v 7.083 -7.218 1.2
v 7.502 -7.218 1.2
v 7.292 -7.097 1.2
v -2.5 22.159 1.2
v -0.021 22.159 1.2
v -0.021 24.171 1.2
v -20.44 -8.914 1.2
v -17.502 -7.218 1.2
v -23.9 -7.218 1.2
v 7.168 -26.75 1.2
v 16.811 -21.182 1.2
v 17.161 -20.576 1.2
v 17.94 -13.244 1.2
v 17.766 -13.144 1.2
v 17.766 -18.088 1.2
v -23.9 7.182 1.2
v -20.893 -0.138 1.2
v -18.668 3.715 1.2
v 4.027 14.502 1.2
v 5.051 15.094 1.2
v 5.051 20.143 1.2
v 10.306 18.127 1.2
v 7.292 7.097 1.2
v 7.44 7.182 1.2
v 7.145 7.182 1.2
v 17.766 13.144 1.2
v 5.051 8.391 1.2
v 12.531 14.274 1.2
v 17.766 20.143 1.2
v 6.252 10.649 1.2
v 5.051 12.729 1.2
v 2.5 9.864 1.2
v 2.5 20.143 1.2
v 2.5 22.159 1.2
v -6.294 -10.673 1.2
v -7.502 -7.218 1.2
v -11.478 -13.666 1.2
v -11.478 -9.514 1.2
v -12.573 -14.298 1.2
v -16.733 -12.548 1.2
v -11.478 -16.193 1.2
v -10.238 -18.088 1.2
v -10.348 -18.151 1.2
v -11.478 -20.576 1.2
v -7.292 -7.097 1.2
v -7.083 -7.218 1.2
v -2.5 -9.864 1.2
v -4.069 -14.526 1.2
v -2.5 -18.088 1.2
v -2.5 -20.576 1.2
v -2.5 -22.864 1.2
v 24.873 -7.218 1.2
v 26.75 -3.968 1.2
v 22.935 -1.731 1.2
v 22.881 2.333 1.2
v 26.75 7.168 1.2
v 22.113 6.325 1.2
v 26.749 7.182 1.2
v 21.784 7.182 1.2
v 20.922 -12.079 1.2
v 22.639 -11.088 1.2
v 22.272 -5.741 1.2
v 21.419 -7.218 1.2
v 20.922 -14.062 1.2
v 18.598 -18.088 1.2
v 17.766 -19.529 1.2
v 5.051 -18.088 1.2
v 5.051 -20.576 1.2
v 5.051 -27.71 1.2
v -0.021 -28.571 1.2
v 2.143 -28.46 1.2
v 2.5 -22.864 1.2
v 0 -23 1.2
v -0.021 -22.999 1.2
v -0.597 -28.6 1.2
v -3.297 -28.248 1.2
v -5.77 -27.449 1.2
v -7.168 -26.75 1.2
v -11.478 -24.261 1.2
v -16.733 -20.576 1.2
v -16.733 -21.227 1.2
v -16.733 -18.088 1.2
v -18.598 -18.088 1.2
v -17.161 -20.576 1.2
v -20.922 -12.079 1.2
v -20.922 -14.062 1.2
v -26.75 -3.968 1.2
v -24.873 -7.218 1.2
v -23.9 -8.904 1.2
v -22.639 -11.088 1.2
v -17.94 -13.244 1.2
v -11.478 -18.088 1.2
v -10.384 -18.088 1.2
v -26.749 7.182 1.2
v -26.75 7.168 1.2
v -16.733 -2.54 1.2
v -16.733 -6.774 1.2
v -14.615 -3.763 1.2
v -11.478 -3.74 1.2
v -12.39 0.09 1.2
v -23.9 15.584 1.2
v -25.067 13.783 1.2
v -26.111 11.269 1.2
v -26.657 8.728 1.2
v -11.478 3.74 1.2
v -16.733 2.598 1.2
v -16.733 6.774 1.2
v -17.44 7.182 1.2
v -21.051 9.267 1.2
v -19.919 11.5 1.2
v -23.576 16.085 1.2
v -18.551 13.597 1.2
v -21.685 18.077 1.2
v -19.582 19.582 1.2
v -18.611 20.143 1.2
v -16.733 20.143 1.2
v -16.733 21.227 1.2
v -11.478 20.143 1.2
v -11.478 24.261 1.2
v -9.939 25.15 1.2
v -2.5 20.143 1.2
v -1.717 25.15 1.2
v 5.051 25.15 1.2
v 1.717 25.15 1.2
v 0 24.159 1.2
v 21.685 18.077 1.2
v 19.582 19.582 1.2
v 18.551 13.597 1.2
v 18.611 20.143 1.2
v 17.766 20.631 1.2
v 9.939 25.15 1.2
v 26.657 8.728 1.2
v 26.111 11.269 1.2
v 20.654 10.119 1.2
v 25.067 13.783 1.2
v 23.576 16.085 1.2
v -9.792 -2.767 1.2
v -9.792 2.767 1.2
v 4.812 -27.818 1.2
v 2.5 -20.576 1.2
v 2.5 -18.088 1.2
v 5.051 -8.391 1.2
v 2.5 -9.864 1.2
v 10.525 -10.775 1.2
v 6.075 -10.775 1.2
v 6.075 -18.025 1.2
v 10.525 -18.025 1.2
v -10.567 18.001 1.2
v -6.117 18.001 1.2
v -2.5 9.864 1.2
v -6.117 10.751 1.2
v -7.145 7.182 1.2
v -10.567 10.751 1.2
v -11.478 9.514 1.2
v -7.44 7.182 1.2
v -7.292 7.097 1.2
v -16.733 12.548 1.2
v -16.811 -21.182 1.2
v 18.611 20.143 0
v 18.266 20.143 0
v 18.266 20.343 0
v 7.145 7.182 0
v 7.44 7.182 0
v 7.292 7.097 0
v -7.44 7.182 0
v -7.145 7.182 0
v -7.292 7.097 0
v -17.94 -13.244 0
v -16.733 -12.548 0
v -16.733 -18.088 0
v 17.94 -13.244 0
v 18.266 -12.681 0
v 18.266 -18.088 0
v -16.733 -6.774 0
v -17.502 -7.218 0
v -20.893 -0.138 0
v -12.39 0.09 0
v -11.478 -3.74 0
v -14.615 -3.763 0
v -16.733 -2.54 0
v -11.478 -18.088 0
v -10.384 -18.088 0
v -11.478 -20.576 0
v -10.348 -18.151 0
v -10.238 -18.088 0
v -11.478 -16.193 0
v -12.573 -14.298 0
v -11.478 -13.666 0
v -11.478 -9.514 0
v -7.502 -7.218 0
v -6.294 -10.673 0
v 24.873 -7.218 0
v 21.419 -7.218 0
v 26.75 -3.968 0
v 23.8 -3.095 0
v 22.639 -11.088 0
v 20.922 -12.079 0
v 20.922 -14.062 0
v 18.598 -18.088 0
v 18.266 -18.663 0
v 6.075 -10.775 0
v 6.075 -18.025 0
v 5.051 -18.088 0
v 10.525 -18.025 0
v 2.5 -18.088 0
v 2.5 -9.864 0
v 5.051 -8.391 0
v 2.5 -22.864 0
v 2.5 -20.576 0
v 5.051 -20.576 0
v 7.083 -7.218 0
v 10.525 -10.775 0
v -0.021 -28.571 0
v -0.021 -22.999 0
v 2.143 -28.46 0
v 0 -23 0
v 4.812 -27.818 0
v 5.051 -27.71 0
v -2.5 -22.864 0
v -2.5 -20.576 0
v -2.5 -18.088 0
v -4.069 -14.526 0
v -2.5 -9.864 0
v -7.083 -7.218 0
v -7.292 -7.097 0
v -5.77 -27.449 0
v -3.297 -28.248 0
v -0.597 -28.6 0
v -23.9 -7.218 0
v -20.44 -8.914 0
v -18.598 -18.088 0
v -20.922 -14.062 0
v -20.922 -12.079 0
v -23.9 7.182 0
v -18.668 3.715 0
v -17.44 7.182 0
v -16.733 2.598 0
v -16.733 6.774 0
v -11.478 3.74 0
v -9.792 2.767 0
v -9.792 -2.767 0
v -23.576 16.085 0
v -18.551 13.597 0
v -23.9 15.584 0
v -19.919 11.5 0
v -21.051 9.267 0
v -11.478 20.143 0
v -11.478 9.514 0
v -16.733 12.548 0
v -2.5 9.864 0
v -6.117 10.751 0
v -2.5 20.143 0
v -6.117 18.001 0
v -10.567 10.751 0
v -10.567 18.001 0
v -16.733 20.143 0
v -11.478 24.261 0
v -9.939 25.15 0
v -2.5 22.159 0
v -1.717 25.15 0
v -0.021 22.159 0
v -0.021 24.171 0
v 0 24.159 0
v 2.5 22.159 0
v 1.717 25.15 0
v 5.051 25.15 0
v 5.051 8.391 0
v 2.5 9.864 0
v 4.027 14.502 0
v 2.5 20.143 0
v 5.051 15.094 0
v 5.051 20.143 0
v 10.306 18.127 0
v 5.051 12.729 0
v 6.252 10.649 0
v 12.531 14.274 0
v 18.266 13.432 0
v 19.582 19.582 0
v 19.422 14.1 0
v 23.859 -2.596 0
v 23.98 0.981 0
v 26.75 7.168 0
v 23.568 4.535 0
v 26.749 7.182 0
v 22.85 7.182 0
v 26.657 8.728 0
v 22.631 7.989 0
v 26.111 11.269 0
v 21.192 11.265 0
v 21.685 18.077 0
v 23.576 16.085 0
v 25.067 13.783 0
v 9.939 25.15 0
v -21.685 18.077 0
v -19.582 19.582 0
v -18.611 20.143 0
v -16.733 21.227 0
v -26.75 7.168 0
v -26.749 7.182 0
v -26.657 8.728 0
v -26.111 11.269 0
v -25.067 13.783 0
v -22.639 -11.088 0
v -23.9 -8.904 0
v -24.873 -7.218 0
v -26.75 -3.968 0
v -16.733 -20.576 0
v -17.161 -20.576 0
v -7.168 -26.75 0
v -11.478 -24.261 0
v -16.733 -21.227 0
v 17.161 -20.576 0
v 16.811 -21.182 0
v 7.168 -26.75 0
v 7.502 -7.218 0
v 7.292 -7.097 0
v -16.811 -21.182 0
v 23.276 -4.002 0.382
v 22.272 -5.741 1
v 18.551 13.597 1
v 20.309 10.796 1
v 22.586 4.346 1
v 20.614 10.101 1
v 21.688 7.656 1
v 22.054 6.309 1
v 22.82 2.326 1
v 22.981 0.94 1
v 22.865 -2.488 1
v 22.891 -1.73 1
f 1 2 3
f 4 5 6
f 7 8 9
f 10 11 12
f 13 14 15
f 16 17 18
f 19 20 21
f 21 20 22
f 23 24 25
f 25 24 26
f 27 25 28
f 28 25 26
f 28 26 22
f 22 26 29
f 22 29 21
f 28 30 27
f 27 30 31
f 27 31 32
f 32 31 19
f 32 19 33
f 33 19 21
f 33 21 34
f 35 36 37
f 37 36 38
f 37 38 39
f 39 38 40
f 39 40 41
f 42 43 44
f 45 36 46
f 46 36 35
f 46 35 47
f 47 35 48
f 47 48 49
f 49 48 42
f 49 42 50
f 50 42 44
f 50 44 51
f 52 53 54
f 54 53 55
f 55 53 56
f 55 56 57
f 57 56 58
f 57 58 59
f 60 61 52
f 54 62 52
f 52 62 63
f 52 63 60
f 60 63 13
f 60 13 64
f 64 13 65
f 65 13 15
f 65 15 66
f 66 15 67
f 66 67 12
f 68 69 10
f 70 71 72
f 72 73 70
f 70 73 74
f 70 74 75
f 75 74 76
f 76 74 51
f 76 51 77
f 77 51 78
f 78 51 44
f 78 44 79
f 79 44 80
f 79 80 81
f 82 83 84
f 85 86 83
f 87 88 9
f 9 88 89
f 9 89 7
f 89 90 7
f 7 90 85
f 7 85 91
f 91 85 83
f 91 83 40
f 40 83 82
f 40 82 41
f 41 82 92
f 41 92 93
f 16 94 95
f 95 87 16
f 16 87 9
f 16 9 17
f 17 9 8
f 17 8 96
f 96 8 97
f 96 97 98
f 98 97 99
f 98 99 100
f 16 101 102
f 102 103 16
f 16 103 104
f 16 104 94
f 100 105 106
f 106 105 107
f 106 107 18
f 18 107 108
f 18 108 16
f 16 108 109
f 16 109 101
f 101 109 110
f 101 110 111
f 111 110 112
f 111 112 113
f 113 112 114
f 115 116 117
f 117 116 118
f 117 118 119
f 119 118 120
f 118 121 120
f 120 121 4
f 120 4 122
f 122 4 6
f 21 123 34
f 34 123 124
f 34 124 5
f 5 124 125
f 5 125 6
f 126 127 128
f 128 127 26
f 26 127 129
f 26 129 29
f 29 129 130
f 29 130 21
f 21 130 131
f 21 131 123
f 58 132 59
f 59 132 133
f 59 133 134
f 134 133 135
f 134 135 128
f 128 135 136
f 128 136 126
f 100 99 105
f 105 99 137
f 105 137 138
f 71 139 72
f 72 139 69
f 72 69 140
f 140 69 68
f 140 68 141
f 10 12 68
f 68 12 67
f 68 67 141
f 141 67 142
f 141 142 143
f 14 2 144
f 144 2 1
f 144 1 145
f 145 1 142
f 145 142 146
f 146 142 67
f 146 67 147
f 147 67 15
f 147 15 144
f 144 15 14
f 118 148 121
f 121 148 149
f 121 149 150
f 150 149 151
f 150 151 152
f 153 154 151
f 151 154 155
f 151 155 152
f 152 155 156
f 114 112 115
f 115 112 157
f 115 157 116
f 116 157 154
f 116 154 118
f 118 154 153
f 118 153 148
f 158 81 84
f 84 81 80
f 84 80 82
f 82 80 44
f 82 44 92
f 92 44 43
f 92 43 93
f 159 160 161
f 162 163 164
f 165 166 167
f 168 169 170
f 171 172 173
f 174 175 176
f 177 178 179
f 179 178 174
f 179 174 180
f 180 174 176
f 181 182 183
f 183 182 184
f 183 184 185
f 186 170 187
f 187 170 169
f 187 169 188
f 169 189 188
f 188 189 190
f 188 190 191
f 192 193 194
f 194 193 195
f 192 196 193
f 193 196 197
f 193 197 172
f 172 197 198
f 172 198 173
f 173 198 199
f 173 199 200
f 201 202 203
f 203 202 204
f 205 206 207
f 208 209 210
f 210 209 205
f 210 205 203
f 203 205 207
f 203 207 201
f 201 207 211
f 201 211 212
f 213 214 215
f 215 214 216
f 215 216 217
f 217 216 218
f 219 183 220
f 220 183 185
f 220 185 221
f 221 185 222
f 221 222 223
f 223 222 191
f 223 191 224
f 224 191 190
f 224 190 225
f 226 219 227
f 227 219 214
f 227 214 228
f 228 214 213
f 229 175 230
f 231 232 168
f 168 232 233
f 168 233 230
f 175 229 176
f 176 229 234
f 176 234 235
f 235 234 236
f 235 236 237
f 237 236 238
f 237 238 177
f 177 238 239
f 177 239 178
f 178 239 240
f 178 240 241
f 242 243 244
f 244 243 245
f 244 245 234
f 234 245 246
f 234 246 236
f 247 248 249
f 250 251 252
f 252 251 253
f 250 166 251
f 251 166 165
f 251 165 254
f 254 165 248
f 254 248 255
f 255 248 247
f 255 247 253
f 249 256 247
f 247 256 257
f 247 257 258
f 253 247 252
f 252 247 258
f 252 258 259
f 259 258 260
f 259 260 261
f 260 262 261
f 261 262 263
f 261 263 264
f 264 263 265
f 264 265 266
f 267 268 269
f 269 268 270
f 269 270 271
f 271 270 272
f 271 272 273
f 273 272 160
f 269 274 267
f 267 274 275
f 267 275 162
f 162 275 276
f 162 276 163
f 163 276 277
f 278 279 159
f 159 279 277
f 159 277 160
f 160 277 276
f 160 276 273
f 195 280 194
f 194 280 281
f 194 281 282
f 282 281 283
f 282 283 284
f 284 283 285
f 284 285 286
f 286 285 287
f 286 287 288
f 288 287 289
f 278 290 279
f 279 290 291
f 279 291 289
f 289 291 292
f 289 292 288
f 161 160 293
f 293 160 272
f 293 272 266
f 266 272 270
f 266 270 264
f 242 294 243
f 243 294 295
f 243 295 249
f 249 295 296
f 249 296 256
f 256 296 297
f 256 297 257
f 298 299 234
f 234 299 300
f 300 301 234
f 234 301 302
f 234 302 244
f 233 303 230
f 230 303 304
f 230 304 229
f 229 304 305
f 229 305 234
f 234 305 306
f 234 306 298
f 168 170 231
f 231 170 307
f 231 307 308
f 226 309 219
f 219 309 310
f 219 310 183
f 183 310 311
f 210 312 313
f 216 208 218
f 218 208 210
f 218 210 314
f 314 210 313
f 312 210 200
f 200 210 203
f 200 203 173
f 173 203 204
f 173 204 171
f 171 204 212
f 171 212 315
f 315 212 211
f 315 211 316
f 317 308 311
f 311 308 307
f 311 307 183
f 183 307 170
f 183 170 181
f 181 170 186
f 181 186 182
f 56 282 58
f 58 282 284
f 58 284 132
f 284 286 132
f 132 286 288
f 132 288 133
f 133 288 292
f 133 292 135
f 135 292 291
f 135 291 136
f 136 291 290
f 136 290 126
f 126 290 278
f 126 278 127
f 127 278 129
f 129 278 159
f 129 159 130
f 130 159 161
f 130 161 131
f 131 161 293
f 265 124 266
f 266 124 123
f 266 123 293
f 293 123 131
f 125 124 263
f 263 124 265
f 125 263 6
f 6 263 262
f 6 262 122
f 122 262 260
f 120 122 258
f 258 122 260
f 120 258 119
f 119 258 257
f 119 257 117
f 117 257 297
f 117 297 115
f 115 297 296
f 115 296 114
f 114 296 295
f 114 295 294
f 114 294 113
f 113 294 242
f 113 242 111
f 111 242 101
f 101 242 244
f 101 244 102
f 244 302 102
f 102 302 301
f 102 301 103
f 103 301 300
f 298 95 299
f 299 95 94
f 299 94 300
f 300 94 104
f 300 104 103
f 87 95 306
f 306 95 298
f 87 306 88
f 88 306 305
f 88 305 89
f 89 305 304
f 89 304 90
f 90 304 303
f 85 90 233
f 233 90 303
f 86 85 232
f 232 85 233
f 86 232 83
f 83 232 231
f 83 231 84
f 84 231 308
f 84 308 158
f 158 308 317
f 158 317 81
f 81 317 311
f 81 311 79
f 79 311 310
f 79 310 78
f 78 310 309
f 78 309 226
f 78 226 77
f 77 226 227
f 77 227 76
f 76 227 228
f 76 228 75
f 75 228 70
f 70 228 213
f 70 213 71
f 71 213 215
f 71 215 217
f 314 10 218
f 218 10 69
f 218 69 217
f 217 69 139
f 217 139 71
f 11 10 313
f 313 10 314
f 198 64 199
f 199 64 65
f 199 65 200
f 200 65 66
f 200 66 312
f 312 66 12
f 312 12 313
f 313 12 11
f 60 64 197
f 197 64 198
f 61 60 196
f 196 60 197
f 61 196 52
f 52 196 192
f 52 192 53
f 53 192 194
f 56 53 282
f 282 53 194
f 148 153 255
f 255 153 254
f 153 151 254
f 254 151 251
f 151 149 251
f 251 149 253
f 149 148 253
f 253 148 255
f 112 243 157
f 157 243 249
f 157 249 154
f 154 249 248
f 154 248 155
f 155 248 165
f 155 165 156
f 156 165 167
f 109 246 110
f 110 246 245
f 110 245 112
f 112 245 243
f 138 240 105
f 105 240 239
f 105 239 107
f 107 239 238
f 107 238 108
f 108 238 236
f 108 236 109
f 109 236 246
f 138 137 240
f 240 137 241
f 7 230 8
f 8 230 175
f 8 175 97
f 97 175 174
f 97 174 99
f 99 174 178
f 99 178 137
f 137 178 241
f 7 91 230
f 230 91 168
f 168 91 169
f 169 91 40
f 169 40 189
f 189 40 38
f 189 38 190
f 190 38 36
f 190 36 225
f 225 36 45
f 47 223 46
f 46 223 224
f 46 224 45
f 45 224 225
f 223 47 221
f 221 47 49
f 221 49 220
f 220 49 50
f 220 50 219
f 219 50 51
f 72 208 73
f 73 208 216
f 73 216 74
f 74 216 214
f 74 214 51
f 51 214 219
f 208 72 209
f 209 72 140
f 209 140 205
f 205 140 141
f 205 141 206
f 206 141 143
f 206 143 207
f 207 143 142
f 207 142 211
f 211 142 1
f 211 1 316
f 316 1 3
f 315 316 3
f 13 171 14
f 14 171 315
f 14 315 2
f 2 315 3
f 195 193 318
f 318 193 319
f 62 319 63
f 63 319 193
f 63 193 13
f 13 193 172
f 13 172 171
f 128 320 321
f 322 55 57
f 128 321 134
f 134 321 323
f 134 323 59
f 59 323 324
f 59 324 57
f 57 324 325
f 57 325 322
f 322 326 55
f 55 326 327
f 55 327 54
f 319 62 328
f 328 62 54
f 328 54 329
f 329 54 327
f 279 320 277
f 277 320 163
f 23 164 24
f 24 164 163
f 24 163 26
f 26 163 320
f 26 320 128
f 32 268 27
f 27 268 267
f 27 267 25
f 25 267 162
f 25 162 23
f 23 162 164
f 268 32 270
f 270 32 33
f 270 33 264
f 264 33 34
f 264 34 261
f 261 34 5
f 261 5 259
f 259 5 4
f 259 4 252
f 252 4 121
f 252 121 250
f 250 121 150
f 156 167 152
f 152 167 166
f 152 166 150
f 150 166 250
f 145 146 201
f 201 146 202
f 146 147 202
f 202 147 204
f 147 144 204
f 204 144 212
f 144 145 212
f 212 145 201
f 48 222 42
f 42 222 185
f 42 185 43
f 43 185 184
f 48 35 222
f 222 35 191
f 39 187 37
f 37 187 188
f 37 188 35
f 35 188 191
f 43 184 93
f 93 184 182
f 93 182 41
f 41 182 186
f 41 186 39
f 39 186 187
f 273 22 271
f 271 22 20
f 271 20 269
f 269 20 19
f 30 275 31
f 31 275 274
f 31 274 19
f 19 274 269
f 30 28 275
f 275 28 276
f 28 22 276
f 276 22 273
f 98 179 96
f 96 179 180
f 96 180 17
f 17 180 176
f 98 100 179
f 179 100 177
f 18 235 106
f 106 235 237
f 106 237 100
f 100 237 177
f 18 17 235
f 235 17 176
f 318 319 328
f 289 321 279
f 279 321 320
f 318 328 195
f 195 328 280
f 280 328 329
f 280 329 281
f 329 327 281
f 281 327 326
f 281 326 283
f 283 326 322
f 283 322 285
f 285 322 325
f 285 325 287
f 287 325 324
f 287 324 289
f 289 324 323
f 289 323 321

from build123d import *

# Parameters (mm, degrees)
BASE_DEPTH               = 1.2
PCB_SKETCH_W             = 4.450002
PCB_SKETCH_H             = 7.250001
PCB_COMPONENT_ROOM_DEPTH = 40.187510032
REMOVAL_ROOM_SIZE        = 1


with BuildPart() as part:
    # Base sketch → Base (new body)
    with BuildSketch(Plane.XY):
        with BuildLine():
            Line((22.639032554, -11.088045382), (26.75, -3.967640898))
            Line((26.75, -3.967640898), (26.75, 7.167640898))
            add(Edge.make_bspline(
                [(19.582359102, 19.582359102), (26.75, 15.444119701), (26.75, 7.167640898)],
                knots=[0, 0, 0, 1, 1, 1], degree=2, weights=[1, 0.818181818, 1]))
            Line((19.582359102, 19.582359102), (9.93892219, 25.15))
            Line((9.93892219, 25.15), (1.716987298, 25.15))
            Line((1.716987298, 25.15), (0, 24.158696921))
            Line((0, 24.158696921), (-1.716987298, 25.15))
            Line((-1.716987298, 25.15), (-9.93892219, 25.15))
            Line((-9.93892219, 25.15), (-19.582359102, 19.582359102))
            add(Edge.make_bspline(
                [(-19.582359102, 19.582359102), (-26.75, 15.444119701), (-26.75, 7.167640898)],
                knots=[0, 0, 0, 1, 1, 1], degree=2, weights=[1, 0.818181818, 1]))
            Line((-26.75, 7.167640898), (-26.75, -3.967640898))
            Line((-26.75, -3.967640898), (-22.639032554, -11.088045382))
            Line((-22.639032554, -11.088045382), (-20.922045256, -12.079348461))
            Line((-20.922045256, -12.079348461), (-20.922045256, -14.061954618))
            Line((-20.922045256, -14.061954618), (-16.81107781, -21.182359102))
            Line((-16.81107781, -21.182359102), (-7.167640898, -26.75))
            add(Edge.make_bspline(
                [(7.167640898, -26.75), (0, -30.888239402), (-7.167640898, -26.75)],
                knots=[0, 0, 0, 1, 1, 1], degree=2, weights=[1, 0.818181818, 1]))
            Line((7.167640898, -26.75), (16.81107781, -21.182359102))
            Line((16.81107781, -21.182359102), (20.922045256, -14.061954618))
            Line((20.922045256, -14.061954618), (20.922045256, -12.079348461))
            Line((20.922045256, -12.079348461), (22.639032554, -11.088045382))
        make_face()
    extrude(amount=BASE_DEPTH)

    # PCB sketch → PCB Component room (cut, through all)
    with BuildSketch(Plane.XY):
        with BuildLine():
            Line((7.292235248, -7.096920387), (17.939993848, -13.244411362))
            Line((17.939993848, -13.244411362), (22.271882405, -5.741366))
            ThreePointArc((22.271882405, -5.741366), (22.585630976, 4.346215175), (18.550568269, 13.596944935))
            Line((18.550568269, 13.596944935), (7.292237734, 7.096945429))
            Line((7.292237734, 7.096945429), (2.500009052, 9.863735785))
            Line((2.500009052, 9.863735785), (2.500009052, 22.158696921))
            Line((2.500009052, 22.158696921), (-2.499990948, 22.158696921))
            Line((-2.499990948, 22.158696921), (-2.499990948, 9.863735785))
            Line((-2.499990948, 9.863735785), (-7.292227753, 7.096933454))
            Line((-7.292227753, 7.096933454), (-18.550555859, 13.596937166))
            ThreePointArc((-18.550555859, 13.596937166), (-19.91857187, 11.500010223), (-21.050555597, 9.266809996))
            Line((-21.050555597, 9.266809996), (-9.792227491, 2.766806284))
            Line((-9.792227491, 2.766806284), (-9.792228638, -2.766774829))
            Line((-9.792228638, -2.766774829), (-20.440003139, -8.91426968))
            Line((-20.440003139, -8.91426968), (-17.940003329, -13.244396808))
            Line((-17.940003329, -13.244396808), (-7.29223057, -7.096902963))
            Line((-7.29223057, -7.096902963), (-2.499990948, -9.863708244))
            Line((-2.499990948, -9.863708244), (-2.499990948, -22.863708244))
            ThreePointArc((-2.499990948, -22.863708244), (9.052e-06, -22.999981541), (2.500009052, -22.863708244))
            Line((2.500009052, -22.863708244), (2.500009052, -9.863708244))
            Line((2.500009052, -9.863708244), (7.292235248, -7.096920387))
        make_face()
        Polygon((-12.572606222, -14.297562646), (-10.347605222, -18.151377424), (-4.068920179, -14.526376924), (-6.293921179, -10.672562146), align=None)
        with Locations((8.300001248, -14.39998027)):
            Rectangle(PCB_SKETCH_W, PCB_SKETCH_H)
        Polygon((-18.668370671, 3.71544734), (-20.893371671, -0.138367439), (-14.614686627, -3.763367939), (-12.389685627, 0.09044684), align=None)
        with Locations((-8.341529649, 14.3760387)):
            Rectangle(PCB_SKETCH_W, PCB_SKETCH_H)
        Polygon((12.531077821, 14.273621076), (10.306076821, 18.127435854), (4.027391778, 14.502435354), (6.252392778, 10.648620576), align=None)
    extrude(amount=PCB_COMPONENT_ROOM_DEPTH, mode=Mode.SUBTRACT)

    # Removal room
    removal_room_edges = [part.edges().sort_by_distance(p)[0] for p in [
        (22.585630976, 4.346215175, 0),
    ]]
    chamfer(removal_room_edges, length=REMOVAL_ROOM_SIZE)


solid = part.part
